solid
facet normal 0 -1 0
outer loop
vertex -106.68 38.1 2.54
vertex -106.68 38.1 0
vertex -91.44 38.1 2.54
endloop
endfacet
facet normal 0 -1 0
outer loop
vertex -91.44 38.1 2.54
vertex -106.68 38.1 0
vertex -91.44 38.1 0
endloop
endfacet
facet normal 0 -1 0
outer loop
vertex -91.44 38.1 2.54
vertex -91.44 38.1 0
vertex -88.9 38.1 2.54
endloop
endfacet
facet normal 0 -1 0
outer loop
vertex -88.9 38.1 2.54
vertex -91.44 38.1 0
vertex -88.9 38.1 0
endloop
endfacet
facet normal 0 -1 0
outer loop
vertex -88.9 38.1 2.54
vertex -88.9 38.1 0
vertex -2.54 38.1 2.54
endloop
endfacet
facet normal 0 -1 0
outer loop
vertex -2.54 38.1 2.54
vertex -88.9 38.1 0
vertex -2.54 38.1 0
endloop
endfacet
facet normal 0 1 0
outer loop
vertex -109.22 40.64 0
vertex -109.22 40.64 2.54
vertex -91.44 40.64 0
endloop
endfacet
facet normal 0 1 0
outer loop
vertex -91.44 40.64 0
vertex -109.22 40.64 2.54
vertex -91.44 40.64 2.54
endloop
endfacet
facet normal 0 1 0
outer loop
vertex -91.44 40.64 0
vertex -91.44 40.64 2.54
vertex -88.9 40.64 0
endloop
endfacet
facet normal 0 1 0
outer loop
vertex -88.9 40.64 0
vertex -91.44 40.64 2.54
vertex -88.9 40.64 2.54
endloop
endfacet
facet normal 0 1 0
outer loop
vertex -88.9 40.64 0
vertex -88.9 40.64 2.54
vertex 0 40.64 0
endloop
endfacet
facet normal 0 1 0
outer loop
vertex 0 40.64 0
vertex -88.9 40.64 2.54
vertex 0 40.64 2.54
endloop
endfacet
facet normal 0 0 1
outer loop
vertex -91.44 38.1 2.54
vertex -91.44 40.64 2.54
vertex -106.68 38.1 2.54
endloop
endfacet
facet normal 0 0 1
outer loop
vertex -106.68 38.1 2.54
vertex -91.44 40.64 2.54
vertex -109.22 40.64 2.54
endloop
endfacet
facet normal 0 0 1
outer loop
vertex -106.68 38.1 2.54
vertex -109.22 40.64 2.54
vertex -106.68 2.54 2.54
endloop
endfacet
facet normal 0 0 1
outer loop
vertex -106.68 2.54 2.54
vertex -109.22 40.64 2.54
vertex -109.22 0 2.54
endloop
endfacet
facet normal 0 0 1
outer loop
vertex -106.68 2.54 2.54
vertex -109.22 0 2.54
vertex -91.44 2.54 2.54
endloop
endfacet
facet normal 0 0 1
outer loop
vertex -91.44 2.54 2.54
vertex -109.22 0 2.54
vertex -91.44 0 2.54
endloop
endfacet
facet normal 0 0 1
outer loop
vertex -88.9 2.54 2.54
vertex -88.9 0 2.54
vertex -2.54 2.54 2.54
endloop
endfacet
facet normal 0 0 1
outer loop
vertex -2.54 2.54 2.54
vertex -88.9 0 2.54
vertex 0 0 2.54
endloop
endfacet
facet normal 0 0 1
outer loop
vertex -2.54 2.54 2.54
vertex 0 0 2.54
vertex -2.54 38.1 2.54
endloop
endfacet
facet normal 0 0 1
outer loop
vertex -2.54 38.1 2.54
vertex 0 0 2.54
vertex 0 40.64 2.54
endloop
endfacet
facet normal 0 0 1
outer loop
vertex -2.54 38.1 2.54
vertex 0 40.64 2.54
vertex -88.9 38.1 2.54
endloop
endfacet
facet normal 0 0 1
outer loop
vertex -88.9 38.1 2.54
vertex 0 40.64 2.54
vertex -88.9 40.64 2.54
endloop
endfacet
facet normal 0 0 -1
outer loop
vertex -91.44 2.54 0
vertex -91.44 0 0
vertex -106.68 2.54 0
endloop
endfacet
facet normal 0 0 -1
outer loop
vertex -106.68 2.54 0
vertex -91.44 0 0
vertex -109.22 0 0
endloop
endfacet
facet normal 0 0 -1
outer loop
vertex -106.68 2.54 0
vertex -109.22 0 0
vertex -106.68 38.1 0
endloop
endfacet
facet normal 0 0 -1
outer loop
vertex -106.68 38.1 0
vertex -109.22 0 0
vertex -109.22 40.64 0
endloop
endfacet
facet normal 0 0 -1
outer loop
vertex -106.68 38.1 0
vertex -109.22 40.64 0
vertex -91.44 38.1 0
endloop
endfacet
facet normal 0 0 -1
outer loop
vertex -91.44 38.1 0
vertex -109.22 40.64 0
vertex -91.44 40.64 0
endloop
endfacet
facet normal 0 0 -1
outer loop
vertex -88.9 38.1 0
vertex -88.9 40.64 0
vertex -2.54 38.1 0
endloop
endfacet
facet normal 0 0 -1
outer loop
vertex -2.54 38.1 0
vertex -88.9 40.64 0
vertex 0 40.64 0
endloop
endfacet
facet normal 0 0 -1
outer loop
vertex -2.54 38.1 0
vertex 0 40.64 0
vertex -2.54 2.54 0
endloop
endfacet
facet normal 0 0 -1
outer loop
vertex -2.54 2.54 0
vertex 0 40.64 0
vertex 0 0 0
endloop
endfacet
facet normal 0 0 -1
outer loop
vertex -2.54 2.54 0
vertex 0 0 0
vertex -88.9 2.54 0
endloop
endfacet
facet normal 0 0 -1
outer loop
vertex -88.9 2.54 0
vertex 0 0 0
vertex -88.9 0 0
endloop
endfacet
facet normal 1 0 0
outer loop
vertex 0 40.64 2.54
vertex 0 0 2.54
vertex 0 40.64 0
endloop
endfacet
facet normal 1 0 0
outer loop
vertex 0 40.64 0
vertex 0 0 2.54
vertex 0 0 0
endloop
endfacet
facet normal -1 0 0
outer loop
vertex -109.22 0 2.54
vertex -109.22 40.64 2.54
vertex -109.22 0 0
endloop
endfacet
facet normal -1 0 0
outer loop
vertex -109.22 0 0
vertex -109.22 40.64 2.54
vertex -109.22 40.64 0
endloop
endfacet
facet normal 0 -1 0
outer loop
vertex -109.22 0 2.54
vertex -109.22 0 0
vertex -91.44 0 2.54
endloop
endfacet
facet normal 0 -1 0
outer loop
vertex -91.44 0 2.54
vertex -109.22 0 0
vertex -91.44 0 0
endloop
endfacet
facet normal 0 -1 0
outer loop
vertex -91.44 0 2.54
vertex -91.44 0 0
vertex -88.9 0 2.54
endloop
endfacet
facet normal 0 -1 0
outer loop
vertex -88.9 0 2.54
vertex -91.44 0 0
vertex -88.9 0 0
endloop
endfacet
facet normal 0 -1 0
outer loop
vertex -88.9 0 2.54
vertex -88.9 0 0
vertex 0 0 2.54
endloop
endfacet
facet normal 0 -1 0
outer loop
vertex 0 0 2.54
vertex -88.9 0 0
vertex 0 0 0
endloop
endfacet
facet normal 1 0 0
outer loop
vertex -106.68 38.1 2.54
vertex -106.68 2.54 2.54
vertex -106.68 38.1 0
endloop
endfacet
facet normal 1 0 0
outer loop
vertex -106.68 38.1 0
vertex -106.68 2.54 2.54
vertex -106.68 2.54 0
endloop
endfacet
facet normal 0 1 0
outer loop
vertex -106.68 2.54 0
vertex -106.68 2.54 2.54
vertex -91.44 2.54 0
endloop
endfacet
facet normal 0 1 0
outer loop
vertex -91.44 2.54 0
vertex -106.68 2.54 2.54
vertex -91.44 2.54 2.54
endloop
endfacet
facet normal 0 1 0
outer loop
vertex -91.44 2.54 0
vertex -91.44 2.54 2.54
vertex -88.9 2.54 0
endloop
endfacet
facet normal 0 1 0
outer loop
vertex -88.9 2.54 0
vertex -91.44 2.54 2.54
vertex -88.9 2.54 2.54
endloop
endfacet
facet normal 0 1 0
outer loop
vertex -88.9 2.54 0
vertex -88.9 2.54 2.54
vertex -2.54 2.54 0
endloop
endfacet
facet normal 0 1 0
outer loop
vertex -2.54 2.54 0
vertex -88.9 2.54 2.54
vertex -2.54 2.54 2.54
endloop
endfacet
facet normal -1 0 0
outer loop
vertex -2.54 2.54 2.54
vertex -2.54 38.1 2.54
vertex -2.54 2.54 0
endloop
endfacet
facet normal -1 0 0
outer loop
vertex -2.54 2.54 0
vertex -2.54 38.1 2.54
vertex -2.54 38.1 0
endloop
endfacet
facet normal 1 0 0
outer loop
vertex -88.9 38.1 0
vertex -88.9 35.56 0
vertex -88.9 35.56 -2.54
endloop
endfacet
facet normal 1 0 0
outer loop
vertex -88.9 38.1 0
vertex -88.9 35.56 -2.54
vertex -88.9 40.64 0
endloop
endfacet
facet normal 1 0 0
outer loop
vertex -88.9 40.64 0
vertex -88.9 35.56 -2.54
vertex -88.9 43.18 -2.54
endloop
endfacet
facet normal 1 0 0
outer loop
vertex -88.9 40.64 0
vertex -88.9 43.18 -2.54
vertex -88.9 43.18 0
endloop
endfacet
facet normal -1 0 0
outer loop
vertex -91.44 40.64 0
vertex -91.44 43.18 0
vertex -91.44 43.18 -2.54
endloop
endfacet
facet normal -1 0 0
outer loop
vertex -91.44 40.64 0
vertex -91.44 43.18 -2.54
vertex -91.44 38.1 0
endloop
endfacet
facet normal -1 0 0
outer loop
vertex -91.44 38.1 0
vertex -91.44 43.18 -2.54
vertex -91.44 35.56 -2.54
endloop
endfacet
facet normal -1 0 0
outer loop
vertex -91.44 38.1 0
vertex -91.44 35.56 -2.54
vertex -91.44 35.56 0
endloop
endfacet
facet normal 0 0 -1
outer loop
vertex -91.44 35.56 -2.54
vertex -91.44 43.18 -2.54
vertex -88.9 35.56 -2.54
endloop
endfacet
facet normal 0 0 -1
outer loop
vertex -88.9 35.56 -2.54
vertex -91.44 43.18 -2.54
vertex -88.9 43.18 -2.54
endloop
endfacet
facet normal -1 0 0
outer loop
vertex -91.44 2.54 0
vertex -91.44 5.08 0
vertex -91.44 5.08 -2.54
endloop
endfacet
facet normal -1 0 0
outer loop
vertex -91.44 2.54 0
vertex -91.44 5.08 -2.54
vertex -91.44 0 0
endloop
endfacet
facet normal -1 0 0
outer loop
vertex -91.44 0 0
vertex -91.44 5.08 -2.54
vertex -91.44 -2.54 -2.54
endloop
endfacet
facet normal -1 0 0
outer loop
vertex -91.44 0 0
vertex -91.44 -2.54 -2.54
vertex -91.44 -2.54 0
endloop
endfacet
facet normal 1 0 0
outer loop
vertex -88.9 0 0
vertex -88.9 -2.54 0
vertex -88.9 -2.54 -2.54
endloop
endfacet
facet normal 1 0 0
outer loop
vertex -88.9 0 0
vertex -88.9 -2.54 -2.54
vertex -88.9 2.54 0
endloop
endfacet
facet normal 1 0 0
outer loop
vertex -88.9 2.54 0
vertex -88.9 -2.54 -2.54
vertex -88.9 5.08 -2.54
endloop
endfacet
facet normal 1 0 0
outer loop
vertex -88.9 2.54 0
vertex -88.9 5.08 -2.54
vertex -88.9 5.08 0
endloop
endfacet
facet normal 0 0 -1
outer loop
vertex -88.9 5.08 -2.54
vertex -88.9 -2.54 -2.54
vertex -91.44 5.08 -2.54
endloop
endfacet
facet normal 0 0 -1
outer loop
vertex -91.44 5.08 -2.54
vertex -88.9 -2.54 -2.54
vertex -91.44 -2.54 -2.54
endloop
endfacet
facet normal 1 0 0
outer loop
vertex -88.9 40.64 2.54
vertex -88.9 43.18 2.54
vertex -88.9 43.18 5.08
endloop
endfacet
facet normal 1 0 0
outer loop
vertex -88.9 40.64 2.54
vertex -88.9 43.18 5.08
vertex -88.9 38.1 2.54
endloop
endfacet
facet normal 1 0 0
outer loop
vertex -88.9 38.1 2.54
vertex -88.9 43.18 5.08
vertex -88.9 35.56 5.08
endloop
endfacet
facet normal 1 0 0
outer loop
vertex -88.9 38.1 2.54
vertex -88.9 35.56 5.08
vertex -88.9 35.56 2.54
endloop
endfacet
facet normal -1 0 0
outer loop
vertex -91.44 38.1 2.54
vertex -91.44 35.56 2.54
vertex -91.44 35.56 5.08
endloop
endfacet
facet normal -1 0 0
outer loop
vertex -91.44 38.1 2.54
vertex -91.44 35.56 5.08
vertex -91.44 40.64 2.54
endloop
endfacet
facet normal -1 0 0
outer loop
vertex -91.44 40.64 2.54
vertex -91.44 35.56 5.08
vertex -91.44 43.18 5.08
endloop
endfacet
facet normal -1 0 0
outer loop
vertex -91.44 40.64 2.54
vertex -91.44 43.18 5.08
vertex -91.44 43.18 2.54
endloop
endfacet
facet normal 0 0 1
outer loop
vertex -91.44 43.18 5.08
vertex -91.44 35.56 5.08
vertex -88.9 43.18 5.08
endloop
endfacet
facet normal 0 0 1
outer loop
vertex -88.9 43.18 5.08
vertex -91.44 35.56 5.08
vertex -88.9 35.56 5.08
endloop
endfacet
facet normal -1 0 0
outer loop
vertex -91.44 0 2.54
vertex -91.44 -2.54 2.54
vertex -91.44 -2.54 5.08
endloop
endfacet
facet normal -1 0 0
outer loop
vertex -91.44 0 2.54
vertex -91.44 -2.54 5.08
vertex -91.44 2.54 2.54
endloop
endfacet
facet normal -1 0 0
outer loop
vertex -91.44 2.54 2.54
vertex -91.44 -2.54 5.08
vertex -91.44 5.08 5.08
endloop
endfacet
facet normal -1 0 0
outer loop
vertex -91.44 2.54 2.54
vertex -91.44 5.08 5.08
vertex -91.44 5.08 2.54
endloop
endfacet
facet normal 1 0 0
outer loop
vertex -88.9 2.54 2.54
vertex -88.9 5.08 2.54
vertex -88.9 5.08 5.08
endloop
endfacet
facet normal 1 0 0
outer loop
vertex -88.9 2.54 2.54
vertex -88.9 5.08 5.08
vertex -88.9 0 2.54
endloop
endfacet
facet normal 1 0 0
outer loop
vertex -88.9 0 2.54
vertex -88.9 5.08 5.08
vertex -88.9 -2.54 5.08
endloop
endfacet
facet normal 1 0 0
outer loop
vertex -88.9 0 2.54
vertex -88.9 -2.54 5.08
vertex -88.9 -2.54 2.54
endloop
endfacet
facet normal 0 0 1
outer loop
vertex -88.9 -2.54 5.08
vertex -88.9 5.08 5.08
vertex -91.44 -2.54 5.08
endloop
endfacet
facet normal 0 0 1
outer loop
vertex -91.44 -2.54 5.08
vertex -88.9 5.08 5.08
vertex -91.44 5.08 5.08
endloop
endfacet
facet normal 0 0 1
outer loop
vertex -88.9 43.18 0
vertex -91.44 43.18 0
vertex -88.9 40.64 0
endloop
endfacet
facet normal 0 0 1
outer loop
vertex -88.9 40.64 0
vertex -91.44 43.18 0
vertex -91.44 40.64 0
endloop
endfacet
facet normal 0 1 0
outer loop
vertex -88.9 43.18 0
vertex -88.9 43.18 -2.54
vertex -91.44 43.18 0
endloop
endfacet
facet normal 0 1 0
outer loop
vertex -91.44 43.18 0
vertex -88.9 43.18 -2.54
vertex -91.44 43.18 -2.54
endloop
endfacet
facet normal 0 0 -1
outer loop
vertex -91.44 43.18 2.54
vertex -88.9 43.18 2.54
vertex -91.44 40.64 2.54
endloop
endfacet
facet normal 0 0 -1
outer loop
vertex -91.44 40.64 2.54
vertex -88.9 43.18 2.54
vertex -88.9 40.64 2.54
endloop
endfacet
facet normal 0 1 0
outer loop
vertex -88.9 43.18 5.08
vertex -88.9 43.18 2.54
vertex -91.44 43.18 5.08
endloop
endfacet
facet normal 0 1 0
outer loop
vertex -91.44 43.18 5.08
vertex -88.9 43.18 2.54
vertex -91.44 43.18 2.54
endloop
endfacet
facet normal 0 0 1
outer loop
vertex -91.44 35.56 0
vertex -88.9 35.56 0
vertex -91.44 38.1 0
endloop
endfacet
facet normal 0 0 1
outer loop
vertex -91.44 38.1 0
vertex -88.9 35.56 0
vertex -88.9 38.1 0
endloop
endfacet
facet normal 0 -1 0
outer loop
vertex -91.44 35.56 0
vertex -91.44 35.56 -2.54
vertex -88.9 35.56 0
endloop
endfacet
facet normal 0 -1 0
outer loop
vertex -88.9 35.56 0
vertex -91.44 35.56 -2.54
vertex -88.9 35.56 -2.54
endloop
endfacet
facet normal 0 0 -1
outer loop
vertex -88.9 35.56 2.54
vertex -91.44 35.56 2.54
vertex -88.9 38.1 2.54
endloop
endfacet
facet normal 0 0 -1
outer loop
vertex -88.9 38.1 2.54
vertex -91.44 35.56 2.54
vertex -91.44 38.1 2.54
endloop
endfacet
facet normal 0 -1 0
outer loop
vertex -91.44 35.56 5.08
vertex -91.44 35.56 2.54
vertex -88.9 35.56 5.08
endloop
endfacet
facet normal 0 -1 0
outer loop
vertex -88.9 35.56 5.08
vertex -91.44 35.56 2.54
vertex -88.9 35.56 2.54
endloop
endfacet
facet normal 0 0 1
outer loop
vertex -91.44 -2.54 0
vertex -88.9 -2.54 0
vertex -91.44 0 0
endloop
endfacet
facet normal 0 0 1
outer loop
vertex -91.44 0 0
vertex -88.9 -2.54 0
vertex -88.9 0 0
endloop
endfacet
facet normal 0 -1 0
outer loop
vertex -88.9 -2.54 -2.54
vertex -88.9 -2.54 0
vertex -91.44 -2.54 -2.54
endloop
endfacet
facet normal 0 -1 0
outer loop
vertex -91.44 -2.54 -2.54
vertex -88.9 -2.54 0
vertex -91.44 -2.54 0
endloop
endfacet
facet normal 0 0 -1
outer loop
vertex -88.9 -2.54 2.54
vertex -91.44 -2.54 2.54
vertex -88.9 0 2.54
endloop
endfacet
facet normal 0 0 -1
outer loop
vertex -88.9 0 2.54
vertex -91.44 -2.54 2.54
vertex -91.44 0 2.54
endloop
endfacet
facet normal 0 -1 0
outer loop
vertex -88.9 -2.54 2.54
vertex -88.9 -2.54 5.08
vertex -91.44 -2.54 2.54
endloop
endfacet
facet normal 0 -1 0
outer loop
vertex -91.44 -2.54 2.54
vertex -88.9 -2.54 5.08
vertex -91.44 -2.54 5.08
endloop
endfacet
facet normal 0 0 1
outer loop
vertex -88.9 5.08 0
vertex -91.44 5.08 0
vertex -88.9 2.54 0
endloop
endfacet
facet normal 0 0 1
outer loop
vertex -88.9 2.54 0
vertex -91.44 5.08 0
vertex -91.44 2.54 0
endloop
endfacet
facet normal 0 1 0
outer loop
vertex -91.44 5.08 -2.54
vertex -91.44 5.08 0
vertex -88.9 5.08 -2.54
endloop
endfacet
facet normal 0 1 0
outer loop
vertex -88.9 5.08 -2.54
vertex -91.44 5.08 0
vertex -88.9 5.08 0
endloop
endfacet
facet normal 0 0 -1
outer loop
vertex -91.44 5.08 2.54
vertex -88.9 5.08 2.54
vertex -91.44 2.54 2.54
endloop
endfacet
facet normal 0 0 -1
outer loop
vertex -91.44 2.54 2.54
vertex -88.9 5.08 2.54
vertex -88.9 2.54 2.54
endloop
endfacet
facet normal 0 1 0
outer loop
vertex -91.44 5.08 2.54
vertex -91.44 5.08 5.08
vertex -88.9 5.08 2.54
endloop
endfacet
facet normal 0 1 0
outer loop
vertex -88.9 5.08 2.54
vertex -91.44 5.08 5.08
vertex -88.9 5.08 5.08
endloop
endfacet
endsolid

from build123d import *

# Parameters (mm, degrees)
SKETCH1_W           = 109.22
SKETCH1_H           = 40.64
SKETCH1_W_2         = 104.14
SKETCH1_H_2         = 35.56
BOSS_EXTRUDE1_DEPTH = 2.54
SKETCH2_W           = 2.54
SKETCH2_H           = 2.54
BOSS_EXTRUDE2_DEPTH = 2.54
SKETCH4_W           = 2.54
SKETCH4_H           = 2.54
BOSS_EXTRUDE3_DEPTH = 2.54
SKETCH6_W           = 2.54
SKETCH6_H           = 2.54
BOSS_EXTRUDE4_DEPTH = 2.54


with BuildPart() as part:
    # Sketch1 → Boss-Extrude1 (new body)
    with BuildSketch(Plane.XY):
        with Locations((-54.61, 20.32)):
            Rectangle(SKETCH1_W, SKETCH1_H)
        with Locations((-54.61, 20.32)):
            Rectangle(SKETCH1_W_2, SKETCH1_H_2, mode=Mode.SUBTRACT)
    extrude(amount=BOSS_EXTRUDE1_DEPTH)

    # Sketch2 → Boss-Extrude2 (add)
    with BuildSketch(Plane(origin=(0, 0, 0), x_dir=(-1, 0, 0), z_dir=(0, 0, -1))):
        with Locations((90.17, 39.37)):
            Rectangle(SKETCH2_W, SKETCH2_H)
        with Locations((90.17, 1.27)):
            Rectangle(SKETCH2_W, SKETCH2_H)
    boss_extrude2 = extrude(amount=BOSS_EXTRUDE2_DEPTH)

    # Mirror1: Boss-Extrude2 across plane
    add(boss_extrude2.mirror(Plane.XY.offset(1.27)))

    # Sketch4 → Boss-Extrude3 (add)
    with BuildSketch(Plane(origin=(0, 40.64, 0), x_dir=(1, 0, 0), z_dir=(0, 1, 0))):
        with Locations((-90.17, 1.27)):
            Rectangle(SKETCH4_W, SKETCH4_H)
        with Locations((-90.17, -3.81)):
            Rectangle(SKETCH4_W, SKETCH4_H)
    boss_extrude3 = extrude(amount=BOSS_EXTRUDE3_DEPTH)

    # Sketch6 → Boss-Extrude4 (add)
    with BuildSketch(Plane(origin=(0, 38.1, 0), x_dir=(-1, 0, 0), z_dir=(0, -1, 0))):
        with Locations((90.17, 1.27)):
            Rectangle(SKETCH6_W, SKETCH6_H)
        with Locations((90.17, -3.81)):
            Rectangle(SKETCH6_W, SKETCH6_H)
    boss_extrude4 = extrude(amount=BOSS_EXTRUDE4_DEPTH)

    # Mirror3: Boss-Extrude3, Boss-Extrude4 across plane
    add(boss_extrude3.mirror(Plane(origin=(0, 20.32, 0), x_dir=(0, 0, 1), z_dir=(0, -1, 0))))
    add(boss_extrude4.mirror(Plane(origin=(0, 20.32, 0), x_dir=(0, 0, 1), z_dir=(0, -1, 0))))


solid = part.part
